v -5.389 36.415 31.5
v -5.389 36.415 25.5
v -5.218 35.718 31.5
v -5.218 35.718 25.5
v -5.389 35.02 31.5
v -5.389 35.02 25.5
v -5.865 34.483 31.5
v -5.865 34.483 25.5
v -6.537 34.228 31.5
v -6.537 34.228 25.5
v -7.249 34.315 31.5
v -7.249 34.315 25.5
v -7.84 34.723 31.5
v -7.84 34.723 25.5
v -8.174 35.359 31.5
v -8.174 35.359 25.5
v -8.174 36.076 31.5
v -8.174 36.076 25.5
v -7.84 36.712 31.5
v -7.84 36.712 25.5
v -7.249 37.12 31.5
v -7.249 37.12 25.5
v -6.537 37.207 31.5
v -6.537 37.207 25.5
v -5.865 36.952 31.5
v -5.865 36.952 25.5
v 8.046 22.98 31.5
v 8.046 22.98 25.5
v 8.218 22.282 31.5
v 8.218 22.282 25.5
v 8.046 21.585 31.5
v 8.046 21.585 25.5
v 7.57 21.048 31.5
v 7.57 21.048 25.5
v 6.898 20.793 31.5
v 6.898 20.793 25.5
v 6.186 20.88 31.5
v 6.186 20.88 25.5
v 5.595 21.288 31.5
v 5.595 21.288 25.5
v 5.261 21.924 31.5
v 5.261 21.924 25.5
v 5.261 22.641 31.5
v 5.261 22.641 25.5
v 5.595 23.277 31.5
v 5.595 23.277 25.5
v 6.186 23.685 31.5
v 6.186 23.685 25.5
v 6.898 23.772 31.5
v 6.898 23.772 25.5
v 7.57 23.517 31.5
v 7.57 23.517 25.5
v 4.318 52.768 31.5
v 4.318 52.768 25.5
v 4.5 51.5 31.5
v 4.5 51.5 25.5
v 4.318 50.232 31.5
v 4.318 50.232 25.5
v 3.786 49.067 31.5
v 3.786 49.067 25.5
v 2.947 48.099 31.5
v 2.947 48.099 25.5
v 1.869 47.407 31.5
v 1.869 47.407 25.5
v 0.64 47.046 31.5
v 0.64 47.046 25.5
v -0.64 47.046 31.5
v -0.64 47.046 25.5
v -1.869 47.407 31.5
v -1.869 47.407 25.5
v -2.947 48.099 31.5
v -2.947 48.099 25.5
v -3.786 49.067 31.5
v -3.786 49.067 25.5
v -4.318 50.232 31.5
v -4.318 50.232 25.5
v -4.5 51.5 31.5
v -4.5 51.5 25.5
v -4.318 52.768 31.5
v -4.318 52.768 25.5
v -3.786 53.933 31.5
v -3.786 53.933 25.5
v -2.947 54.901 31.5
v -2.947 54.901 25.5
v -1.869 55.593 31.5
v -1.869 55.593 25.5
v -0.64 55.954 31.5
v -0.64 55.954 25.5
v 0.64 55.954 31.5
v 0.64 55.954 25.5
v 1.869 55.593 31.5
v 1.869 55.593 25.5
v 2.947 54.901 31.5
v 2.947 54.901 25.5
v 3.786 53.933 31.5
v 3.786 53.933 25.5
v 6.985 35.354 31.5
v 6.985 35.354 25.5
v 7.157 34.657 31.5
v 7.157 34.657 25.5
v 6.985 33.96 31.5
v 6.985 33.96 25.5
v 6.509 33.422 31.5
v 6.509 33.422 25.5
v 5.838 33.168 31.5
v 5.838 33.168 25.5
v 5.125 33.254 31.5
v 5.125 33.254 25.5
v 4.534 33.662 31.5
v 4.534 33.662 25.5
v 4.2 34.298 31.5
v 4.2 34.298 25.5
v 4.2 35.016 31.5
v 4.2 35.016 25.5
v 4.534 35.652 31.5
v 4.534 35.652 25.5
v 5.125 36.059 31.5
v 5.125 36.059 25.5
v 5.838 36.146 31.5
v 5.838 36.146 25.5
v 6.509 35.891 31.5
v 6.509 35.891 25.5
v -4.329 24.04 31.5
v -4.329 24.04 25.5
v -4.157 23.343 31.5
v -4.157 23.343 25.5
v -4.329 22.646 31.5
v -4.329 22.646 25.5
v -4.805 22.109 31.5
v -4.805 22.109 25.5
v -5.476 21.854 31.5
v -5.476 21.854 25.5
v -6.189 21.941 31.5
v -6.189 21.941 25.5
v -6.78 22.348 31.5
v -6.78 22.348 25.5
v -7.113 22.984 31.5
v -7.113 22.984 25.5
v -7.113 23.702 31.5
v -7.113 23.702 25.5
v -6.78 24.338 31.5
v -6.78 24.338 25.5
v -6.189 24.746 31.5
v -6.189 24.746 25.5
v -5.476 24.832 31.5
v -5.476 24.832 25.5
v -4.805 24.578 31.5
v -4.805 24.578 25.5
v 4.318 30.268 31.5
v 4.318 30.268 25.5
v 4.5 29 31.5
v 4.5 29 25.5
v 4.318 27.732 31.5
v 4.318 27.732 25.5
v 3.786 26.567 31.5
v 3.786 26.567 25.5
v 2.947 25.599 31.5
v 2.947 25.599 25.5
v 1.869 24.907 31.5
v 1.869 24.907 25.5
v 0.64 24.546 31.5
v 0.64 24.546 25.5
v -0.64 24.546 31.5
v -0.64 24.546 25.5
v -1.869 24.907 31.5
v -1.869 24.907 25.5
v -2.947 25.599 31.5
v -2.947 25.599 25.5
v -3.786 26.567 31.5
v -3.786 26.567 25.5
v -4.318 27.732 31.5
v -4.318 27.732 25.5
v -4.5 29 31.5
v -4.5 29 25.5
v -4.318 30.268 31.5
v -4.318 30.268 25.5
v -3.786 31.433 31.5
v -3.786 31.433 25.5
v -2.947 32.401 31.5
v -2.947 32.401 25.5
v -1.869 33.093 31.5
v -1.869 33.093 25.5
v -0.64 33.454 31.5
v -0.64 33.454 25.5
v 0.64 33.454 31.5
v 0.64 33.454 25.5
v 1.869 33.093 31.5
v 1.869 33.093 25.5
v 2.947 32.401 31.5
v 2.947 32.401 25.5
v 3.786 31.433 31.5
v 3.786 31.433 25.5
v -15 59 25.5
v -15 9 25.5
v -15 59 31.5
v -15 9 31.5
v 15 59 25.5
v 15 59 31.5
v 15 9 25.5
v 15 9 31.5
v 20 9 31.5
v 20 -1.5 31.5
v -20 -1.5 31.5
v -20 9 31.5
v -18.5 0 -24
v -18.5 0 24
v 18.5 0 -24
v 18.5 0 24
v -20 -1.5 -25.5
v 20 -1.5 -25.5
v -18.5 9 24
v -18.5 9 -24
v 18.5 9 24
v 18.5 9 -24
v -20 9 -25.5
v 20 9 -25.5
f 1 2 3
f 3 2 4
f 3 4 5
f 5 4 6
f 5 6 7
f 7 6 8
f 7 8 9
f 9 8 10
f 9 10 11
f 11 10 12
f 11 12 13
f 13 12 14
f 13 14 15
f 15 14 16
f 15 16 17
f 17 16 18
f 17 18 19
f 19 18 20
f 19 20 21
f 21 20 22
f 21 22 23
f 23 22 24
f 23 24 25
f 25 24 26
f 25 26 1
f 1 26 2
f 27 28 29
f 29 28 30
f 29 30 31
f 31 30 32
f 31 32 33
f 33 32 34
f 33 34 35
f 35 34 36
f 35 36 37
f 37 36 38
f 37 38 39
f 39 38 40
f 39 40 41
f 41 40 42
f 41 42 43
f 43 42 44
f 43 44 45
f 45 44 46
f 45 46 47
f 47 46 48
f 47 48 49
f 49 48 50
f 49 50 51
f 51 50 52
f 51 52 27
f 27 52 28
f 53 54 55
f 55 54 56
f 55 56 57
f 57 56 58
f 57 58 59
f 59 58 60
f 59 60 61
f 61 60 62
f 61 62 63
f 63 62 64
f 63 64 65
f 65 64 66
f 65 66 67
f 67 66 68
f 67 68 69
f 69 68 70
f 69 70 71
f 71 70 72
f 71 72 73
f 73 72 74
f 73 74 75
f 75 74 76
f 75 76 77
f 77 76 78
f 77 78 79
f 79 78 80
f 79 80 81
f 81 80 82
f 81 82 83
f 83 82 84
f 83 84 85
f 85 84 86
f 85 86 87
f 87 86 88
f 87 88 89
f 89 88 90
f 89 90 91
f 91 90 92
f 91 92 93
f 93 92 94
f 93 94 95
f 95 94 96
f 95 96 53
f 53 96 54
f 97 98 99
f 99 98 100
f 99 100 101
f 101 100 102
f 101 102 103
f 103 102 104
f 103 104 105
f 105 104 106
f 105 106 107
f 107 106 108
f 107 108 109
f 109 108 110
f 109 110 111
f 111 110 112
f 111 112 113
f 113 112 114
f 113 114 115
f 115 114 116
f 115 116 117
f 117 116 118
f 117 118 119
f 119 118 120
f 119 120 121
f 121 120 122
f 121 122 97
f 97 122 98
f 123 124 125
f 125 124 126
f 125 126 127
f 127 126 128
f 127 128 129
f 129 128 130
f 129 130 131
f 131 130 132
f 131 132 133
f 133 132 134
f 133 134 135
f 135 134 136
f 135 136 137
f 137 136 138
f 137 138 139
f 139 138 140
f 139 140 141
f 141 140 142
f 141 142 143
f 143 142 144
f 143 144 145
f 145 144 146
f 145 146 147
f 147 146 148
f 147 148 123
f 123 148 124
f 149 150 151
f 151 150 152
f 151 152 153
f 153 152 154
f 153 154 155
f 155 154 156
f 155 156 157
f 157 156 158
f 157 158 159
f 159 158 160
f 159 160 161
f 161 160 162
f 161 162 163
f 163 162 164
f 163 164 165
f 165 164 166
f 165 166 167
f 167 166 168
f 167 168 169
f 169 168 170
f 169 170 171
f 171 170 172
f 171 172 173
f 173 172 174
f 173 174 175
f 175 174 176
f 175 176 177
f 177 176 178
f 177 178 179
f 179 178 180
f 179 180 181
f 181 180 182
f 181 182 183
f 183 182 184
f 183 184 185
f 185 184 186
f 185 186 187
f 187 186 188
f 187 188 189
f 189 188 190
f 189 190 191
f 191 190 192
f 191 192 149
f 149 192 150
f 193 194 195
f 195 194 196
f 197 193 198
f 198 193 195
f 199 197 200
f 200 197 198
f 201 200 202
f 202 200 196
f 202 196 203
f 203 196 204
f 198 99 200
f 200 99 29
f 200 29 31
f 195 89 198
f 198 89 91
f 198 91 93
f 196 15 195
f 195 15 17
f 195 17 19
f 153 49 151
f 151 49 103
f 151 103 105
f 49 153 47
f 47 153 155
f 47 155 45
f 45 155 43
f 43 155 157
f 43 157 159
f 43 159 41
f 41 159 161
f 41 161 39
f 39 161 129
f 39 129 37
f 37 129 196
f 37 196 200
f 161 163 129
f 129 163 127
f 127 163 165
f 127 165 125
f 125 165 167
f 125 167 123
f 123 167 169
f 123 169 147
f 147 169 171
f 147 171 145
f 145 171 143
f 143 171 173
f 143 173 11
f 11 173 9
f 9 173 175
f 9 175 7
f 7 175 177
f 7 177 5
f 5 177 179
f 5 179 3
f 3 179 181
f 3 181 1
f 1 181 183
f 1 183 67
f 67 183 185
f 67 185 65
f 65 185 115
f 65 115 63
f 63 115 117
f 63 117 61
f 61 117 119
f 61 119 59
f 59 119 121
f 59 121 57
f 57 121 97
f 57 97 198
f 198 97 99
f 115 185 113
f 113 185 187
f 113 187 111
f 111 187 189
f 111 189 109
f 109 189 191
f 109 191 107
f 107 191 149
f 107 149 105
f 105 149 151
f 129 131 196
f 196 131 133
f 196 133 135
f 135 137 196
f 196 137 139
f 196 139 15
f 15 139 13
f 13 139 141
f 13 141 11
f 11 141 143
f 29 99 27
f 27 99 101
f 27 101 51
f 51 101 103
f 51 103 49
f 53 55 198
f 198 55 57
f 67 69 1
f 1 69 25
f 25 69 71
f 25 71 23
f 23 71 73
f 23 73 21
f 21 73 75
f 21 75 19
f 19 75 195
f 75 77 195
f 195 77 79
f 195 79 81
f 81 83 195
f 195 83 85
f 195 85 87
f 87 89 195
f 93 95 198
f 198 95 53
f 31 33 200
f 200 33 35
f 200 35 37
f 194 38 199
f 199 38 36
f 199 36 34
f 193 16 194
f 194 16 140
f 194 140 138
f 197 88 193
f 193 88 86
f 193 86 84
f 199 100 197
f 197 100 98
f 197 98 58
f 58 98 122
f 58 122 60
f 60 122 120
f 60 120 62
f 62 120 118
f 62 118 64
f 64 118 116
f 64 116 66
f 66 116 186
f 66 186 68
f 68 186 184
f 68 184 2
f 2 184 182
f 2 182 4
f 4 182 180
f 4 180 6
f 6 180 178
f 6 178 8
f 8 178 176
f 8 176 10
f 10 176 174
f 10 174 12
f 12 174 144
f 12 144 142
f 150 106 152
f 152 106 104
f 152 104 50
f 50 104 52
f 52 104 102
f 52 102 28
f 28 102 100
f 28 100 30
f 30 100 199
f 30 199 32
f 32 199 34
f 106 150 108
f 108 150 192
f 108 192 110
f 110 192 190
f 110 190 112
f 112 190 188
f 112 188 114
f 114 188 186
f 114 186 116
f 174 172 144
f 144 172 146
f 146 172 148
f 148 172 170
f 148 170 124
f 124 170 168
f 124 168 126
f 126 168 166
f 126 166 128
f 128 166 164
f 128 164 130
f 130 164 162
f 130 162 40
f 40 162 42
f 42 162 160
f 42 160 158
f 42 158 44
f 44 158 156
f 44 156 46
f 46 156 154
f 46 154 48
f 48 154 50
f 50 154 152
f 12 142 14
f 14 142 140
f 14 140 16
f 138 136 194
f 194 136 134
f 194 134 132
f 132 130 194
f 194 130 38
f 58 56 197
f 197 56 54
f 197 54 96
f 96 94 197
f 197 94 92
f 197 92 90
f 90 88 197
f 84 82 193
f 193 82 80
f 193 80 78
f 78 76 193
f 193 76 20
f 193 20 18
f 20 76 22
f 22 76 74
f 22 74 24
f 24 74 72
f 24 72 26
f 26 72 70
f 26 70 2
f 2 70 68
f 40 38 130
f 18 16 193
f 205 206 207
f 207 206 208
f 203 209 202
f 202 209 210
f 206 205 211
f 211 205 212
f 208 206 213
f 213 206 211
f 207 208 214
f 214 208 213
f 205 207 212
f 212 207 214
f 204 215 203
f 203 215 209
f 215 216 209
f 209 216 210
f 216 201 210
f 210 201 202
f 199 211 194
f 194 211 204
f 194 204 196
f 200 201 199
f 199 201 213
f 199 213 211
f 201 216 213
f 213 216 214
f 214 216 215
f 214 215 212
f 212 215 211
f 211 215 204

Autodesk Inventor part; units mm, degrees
ref_plane "YZ Plane" through (0, 0, 0) normal (1, 0, 0) x (0, 1, 0)
ref_plane "XZ Plane" through (0, 0, 0) normal (0, 1, 0) x (-1, 0, 0)
ref_plane "XY Plane" through (0, 0, 0) normal (0, 0, 1) x (1, 0, 0)
sketch "Sketch1" plane through (0, 0, 0) normal (0, 1, 0) x (-1, 0, 0)
  line L0 (18.5, -24) -> (-18.5, -24)
  line L1 (-18.5, -24) -> (-18.5, 24)
  line L2 (-18.5, 24) -> (18.5, 24)
  line L3 (18.5, 24) -> (18.5, -24)
  line L4 (20, -25.5) -> (-20, -25.5)
  line L5 (-20, -25.5) -> (-20, 25.5)
  line L6 (-20, 25.5) -> (20, 25.5)
  line L7 (20, 25.5) -> (20, -25.5)
  point P0 (0, 0)
  point P1 (0, -24)
  point P2 (-18.5, 0)
  point P3 (-20, 0)
  point P4 (0, -25.5)
  dimension "d0" = 37
  dimension "d1" = 48
  dimension "d2" = 1.5
  dimension "d3" = 1.5
extrude "Extrusion1" add sketch "Sketch1" along normal blind 9
extrude "Extrusion2" add sketch "Sketch1" against normal blind 1.5 contours L0 L1 L2 L3 | L4 L5 L6 L7
sketch "Sketch2" plane through (-20, 9, 25.5) normal (0, 0, 1) x (1, 0, 0)
  line L0 (5, 35) -> (35, 35) construction
  line L1 (35, 35) -> (35, 5)
  line L2 (35, 5) -> (5, 5) construction
  line L3 (5, 5) -> (5, 35)
  circle A0 centre (20, 20) radius 4.5
  circle A1 centre (14.3431, 14.3431) radius 1.5
  circle A2 centre (13.2825, 26.7175) radius 1.5
  circle A3 centre (25.6569, 25.6569) radius 1.5
  circle A4 centre (26.7175, 13.2825) radius 1.5
  line L4 (14.3431, 14.3431) -> (25.6569, 25.6569) construction
  line L5 (13.2825, 26.7175) -> (26.7175, 13.2825) construction
  line L6 (0, 0) -> (40, 0) projected
  line L7 (25.6569, 25.6569) -> (35, 35) construction
  line L8 (40, -10.5) -> (40, 0) projected
  line L9 (0, 0) -> (40, 0) projected
  line L10 (0, 0) -> (0, -10.5) projected
  line L11 (40, -10.5) -> (0, -10.5) projected
  circle A5 centre (20, 20) radius 13.9 construction
  line L12 (5, 5) -> (5, 0)
  line L13 (35, 5) -> (35, 0)
  circle A6 centre (20, 42.5) radius 4.5
  line L14 (5, 35) -> (5, 50)
  line L15 (5, 50) -> (35, 50)
  line L16 (35, 50) -> (35, 35)
  point P0 (20, -9)
  point P1 (20, 35)
  point P2 (35, 20)
  point P3 (20, 5)
  point P4 (20, 0)
  point P5 (5, 0)
  point P6 (35, 0)
  point P7 (5, 0)
  point P8 (35, 0)
  dimension "d8" = 9
  dimension "d9" = 3
  dimension "d10" = 16
  dimension "d11" = 19
  dimension "d12" = 30
  dimension "d16" = 27.8
  dimension "d17" = 5
  dimension "d19" = 7.5
  dimension "d20" = 15
extrude "Extrusion3" add sketch "Sketch2" along normal blind 6
equation "\"d20\" = 2 * d19"
properties part number "Motor Stand"
